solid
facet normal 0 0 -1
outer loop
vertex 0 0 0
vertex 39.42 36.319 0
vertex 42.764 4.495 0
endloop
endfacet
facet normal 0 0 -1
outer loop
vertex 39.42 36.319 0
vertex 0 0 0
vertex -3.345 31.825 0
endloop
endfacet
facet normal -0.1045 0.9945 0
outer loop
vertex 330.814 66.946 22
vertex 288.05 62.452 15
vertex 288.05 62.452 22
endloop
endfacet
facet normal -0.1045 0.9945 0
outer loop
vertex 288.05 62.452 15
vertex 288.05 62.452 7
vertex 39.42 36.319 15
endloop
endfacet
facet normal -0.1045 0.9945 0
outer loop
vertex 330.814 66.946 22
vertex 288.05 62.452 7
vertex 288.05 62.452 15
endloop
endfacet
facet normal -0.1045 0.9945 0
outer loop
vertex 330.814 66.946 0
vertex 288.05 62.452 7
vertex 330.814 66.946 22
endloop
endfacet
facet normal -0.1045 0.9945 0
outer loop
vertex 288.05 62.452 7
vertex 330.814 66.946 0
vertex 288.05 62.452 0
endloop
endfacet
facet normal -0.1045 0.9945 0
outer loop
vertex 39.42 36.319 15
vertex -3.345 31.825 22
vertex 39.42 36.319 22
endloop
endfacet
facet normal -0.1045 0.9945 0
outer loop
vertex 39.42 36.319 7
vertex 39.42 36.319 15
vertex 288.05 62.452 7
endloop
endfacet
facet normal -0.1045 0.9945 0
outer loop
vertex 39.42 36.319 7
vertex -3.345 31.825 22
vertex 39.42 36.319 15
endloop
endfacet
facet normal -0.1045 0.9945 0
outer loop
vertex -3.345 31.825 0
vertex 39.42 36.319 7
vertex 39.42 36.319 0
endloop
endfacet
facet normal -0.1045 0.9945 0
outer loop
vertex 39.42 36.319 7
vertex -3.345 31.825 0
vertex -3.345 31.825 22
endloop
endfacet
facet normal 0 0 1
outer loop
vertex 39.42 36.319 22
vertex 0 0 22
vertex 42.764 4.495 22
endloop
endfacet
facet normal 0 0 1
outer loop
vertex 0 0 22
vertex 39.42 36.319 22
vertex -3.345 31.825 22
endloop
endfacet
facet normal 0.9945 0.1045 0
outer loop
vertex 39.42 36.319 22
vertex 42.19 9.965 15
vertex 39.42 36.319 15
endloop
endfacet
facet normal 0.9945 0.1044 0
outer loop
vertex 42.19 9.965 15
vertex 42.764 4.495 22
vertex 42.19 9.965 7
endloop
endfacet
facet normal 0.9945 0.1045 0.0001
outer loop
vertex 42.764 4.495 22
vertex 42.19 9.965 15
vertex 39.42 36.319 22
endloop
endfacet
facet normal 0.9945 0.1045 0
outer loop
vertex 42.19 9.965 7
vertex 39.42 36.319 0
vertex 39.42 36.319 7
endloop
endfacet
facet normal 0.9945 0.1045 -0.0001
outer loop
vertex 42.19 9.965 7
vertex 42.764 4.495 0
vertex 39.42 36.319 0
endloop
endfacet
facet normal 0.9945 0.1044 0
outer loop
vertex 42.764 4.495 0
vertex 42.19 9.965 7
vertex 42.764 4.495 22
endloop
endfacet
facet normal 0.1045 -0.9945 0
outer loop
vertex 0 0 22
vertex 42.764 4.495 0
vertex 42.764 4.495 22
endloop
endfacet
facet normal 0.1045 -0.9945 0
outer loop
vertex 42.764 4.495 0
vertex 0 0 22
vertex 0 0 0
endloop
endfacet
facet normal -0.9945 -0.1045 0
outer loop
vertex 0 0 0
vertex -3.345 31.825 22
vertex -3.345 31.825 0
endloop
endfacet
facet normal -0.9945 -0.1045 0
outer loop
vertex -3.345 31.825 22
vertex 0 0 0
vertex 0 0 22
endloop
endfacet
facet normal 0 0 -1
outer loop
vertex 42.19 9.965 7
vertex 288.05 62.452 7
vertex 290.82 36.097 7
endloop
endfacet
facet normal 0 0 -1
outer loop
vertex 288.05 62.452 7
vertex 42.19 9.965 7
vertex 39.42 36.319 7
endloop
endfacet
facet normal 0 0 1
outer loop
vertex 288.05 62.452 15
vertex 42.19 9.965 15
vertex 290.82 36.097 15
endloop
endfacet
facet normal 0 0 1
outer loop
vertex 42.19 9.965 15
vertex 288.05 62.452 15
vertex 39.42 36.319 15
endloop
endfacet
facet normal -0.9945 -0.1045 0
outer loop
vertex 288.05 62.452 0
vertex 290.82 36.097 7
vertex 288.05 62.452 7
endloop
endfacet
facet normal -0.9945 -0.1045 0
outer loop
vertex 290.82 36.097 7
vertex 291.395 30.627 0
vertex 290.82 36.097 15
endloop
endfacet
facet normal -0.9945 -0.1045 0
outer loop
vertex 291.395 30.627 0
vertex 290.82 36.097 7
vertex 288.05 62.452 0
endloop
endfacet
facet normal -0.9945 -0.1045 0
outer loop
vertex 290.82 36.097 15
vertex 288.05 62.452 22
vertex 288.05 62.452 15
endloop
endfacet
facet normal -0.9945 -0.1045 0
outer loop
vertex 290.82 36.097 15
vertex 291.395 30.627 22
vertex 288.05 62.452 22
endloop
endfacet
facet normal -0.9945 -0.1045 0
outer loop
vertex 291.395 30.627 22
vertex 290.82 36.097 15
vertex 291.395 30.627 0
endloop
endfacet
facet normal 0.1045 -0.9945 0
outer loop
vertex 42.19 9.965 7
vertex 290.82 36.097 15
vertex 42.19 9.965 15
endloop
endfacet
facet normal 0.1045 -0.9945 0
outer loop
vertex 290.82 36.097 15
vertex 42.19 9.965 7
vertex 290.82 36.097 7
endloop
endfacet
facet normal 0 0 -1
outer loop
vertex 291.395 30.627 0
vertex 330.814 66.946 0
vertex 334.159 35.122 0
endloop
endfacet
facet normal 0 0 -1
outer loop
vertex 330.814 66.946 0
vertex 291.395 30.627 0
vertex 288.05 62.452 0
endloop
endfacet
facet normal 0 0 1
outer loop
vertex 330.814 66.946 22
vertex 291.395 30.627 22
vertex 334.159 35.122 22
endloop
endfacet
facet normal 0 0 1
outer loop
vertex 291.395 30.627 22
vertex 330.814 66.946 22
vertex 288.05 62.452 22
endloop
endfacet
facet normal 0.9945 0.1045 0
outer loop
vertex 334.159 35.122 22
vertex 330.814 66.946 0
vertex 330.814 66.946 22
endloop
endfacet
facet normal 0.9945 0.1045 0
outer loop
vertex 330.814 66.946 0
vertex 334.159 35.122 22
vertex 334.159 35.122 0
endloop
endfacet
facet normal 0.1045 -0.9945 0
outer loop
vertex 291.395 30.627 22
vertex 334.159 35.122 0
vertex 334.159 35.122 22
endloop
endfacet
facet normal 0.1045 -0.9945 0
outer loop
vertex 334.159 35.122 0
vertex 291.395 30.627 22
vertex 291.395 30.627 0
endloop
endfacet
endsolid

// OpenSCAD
//cm

Tw=22;
Tl=43;
Th=32;

tw=8;
tl=250;
th=26.5;

rotate([0,-90,-90]){
rotate([6,0,0]){
translate([Tw/2,Tl/2,Th/2]){
union(){
    cube([Tw,Tl,Th],true);
    translate([0,Tl/2+tl/2,Th/2-th/2])cube([tw,tl,th],true);
    translate([0,Tl+tl,0])cube([Tw,Tl,Th],true);
}
}
}
}
